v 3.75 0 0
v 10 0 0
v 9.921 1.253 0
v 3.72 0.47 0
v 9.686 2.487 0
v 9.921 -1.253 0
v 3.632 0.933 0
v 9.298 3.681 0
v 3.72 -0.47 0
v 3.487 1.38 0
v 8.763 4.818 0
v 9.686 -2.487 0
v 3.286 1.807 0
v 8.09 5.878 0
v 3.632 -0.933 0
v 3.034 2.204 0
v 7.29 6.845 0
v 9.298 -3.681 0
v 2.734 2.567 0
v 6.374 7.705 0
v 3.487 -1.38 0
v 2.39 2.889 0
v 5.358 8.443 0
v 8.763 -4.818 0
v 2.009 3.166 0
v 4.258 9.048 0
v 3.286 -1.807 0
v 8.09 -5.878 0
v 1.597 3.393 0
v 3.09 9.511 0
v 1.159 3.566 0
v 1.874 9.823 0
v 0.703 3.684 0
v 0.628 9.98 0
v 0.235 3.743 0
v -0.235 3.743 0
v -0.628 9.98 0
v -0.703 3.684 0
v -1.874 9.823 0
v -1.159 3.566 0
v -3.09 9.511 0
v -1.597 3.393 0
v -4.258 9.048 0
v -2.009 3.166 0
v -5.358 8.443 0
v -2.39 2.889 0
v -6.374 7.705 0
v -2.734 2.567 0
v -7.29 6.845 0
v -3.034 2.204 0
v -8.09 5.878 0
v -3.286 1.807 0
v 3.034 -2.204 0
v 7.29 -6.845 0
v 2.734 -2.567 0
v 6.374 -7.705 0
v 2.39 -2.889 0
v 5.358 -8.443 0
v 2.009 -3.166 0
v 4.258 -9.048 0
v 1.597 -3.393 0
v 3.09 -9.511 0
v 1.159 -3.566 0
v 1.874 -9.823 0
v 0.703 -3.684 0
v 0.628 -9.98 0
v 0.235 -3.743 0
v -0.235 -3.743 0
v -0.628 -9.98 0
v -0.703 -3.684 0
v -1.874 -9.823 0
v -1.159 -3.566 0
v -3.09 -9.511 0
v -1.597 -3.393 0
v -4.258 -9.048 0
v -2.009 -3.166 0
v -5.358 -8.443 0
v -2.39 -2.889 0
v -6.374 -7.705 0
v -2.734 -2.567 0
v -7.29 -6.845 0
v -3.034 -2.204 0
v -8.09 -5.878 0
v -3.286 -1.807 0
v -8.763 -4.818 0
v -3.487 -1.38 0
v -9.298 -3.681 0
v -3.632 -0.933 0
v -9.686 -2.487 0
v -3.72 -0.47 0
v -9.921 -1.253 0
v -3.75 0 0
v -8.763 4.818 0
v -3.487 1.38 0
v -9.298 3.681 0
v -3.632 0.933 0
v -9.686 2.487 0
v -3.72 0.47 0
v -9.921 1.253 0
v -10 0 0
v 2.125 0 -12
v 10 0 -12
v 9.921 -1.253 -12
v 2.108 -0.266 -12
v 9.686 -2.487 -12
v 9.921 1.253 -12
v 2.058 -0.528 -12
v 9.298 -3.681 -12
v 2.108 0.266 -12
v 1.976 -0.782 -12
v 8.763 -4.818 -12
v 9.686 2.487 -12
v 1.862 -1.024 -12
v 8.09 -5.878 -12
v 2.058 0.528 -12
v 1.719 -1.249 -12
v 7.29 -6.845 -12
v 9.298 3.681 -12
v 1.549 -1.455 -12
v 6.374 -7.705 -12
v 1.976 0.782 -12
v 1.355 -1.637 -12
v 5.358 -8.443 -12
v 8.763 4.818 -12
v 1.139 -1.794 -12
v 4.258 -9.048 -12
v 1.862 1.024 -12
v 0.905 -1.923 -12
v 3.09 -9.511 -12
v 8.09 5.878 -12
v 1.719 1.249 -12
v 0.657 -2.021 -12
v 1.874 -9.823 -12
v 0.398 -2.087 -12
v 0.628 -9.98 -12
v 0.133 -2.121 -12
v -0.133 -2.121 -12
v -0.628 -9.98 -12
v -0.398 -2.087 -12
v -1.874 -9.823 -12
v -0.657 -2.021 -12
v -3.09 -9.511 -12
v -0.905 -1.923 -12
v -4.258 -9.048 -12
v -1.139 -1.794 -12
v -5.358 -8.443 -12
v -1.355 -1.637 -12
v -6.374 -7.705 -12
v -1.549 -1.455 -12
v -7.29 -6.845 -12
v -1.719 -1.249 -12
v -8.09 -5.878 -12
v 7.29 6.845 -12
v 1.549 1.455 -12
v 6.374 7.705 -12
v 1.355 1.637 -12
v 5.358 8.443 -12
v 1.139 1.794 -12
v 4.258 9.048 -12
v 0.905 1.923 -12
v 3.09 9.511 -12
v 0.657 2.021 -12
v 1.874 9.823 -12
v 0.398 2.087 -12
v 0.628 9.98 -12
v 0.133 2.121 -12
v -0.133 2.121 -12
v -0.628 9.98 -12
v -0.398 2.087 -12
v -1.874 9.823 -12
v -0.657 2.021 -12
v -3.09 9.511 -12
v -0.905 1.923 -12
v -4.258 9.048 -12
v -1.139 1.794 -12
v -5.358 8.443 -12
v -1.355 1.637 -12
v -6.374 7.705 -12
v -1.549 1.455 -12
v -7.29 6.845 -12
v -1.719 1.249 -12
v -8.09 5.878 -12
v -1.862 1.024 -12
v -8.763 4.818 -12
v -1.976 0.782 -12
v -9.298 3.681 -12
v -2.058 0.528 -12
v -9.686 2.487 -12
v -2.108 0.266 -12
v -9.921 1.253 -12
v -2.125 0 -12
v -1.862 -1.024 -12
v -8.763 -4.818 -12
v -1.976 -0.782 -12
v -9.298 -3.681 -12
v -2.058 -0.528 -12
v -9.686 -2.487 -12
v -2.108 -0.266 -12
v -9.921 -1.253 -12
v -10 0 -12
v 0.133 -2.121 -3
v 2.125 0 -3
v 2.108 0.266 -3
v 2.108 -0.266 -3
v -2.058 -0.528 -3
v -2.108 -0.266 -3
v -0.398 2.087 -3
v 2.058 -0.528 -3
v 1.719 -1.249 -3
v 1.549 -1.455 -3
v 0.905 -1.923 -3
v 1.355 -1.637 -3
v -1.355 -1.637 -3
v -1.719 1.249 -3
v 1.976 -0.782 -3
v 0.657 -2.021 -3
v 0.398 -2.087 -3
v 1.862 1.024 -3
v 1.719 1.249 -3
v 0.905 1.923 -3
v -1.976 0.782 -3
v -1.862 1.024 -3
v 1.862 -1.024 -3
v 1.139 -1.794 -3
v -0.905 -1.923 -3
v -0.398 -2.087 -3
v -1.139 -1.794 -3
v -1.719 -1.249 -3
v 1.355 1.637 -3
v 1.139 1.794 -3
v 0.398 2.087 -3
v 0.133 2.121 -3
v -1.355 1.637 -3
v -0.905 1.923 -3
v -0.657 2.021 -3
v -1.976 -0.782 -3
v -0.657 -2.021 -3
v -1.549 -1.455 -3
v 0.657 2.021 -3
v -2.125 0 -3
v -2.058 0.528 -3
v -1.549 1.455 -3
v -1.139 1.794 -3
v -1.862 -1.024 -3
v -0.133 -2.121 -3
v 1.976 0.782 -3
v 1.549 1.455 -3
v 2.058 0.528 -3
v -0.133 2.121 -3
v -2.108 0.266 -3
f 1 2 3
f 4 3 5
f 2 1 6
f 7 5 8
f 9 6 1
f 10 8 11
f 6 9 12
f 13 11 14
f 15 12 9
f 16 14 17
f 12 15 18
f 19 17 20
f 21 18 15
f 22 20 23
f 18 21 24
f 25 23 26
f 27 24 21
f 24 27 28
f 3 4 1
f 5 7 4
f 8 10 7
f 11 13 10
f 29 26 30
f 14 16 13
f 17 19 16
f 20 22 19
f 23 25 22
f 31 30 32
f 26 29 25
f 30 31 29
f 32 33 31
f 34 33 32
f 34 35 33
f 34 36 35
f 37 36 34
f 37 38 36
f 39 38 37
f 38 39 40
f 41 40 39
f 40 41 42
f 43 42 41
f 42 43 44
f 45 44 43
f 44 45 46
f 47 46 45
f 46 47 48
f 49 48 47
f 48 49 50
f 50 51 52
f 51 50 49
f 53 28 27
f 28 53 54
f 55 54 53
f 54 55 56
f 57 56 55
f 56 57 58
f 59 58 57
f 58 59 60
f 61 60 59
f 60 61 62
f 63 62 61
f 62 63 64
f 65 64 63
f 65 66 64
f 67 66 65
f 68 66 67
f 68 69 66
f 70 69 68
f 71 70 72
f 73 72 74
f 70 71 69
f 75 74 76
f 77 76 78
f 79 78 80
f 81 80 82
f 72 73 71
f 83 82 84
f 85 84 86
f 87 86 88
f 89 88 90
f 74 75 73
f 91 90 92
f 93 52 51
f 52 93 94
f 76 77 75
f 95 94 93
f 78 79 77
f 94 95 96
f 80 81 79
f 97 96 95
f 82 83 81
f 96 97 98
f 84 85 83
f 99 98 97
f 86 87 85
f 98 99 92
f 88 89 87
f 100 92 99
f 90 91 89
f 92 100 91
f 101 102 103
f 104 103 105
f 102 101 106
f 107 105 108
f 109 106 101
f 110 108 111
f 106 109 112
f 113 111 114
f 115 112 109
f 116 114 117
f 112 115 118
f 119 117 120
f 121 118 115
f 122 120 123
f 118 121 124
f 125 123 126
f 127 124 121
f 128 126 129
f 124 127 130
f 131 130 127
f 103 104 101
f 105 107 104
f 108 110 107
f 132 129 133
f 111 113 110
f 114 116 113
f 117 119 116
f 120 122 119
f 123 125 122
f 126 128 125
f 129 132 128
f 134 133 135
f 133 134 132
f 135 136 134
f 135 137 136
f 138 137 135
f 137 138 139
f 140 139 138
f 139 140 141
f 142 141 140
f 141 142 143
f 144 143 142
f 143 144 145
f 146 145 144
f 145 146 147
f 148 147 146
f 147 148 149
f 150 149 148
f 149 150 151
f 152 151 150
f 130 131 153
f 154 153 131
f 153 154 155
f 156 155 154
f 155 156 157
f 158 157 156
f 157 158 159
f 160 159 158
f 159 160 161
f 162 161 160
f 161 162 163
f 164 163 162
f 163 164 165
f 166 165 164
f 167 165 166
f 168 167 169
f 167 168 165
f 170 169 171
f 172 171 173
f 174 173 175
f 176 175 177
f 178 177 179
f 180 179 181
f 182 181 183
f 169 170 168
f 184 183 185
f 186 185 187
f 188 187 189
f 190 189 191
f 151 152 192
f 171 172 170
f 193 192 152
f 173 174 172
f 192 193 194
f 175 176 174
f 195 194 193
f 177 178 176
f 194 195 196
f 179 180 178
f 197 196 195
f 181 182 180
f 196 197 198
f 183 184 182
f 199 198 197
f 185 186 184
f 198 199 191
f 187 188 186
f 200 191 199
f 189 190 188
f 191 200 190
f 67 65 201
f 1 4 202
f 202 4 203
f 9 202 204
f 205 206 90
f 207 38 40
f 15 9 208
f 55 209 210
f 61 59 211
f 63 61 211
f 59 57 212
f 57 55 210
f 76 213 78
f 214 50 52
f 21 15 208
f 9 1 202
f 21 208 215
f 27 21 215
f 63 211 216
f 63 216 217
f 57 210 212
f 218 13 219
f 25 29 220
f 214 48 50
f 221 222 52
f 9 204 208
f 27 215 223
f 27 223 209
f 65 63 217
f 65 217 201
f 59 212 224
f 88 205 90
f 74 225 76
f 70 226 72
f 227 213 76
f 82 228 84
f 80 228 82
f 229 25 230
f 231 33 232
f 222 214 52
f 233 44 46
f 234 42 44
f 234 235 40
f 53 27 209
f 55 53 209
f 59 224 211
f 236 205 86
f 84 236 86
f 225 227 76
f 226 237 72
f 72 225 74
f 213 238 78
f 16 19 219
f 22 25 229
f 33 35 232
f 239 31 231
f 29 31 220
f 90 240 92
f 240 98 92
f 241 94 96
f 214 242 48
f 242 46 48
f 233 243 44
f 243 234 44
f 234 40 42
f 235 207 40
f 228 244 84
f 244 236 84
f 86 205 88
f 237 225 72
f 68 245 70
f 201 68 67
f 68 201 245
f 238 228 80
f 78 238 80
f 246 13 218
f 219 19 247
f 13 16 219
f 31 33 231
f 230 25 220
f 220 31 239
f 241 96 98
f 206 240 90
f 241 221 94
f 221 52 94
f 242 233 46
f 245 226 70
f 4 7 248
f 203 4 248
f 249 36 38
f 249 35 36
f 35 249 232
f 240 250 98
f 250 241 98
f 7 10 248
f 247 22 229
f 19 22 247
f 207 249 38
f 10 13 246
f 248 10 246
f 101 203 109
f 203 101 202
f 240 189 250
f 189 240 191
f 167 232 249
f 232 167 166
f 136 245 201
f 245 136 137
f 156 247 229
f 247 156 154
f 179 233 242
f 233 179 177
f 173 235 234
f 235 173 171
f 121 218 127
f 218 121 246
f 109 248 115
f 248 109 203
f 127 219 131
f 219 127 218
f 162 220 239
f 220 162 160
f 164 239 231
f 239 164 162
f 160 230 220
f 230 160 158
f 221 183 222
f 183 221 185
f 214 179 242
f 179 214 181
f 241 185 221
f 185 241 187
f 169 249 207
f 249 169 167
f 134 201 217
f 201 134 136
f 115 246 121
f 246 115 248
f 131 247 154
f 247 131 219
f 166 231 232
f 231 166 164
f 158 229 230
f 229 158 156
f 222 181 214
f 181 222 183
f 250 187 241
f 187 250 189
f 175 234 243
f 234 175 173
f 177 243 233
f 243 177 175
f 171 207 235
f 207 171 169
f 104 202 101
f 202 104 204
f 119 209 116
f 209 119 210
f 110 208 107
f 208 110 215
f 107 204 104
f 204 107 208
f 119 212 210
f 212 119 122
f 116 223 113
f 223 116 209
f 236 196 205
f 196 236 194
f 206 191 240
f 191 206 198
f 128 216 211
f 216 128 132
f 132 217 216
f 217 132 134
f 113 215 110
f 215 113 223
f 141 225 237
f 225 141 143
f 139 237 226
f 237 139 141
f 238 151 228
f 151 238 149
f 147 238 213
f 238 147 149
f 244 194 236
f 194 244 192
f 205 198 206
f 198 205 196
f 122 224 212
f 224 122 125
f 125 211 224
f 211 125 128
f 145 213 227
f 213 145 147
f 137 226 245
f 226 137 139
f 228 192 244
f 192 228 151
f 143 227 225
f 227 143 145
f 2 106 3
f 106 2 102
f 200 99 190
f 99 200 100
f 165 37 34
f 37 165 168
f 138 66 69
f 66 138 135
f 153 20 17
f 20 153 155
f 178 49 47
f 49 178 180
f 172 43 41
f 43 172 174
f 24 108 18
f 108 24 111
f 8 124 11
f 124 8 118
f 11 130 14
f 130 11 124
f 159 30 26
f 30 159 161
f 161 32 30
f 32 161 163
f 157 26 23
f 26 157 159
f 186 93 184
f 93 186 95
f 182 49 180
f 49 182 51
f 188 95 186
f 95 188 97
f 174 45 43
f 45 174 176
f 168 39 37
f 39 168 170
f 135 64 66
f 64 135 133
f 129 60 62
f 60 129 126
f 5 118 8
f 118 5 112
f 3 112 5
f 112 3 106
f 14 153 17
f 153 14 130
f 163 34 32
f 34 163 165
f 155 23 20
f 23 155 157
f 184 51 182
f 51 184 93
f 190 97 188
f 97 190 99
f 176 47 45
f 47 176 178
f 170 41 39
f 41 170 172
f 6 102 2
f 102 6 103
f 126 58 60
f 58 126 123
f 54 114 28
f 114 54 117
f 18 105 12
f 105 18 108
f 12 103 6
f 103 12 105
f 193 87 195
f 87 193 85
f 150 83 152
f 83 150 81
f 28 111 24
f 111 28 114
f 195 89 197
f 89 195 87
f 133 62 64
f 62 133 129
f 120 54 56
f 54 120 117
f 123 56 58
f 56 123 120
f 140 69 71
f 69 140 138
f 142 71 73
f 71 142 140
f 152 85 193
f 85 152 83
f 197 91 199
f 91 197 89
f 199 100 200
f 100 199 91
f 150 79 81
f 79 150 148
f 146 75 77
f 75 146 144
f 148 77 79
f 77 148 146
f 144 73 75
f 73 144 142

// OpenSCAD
$fn = 50;


difference() {
	union() {
		translate(v = [0, 0, -12.0000000000]) {
			cylinder(h = 12, r = 10.0000000000);
		}
		cylinder(h = 0, r = 16.0000000000);
	}
	union() {
		translate(v = [0, 0, 0]) {
			rotate(a = [0, 0, 0]) {
				difference() {
					union() {
						#translate(v = [0, 0, -12.0000000000]) {
							cylinder(h = 12, r = 2.0000000000);
						}
						#translate(v = [0, 0, -3]) {
							cylinder(h = 3, r1 = 2.1250000000, r2 = 3.7500000000);
						}
						#translate(v = [0, 0, -12.0000000000]) {
							cylinder(h = 12, r = 2.1250000000);
						}
						#translate(v = [0, 0, -12.0000000000]) {
							cylinder(h = 12, r = 2.0000000000);
						}
					}
					union();
				}
			}
		}
	}
}
